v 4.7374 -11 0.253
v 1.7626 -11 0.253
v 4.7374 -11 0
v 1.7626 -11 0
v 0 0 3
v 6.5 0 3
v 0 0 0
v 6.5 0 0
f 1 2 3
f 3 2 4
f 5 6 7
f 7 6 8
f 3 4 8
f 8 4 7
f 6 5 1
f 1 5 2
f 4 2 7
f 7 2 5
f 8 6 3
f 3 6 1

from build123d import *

# Parameters (mm, degrees)
SKETCH_1_W          = 6.5
SKETCH_1_H          = 11
EXTRUDE_1_DEPTH     = 3
CUT_EXTRUDE_1_DEPTH = 10
CUT_EXTRUDE_2_DEPTH = 10


with BuildPart() as part:
    # 草图1 → 凸台-拉伸1 (new body)
    with BuildSketch(Plane.XY):
        with Locations((3.25, -5.5)):
            Rectangle(SKETCH_1_W, SKETCH_1_H)
    extrude(amount=EXTRUDE_1_DEPTH)

    # 草图2 → 切除-拉伸1 (cut)
    with BuildSketch(Plane(origin=(6.5, 0, 0), x_dir=(0, 0, -1), z_dir=(1, 0, 0))):
        Polygon((-3, 0), (-0.252978195, -11), (-3, -11), align=None)
    extrude(amount=-CUT_EXTRUDE_1_DEPTH, mode=Mode.SUBTRACT)

    # 草图3 → 切除-拉伸2 (cut)
    with BuildSketch(Plane(origin=(0, 0, 0), x_dir=(-1, 0, 0), z_dir=(0, 0, -1))):
        Polygon((-6.5, 0), (-4.73741155, -11), (-6.5, -11), align=None)
        Polygon((-1.76258845, -11), (0, -11), (0, 0), align=None)
    extrude(amount=-CUT_EXTRUDE_2_DEPTH, mode=Mode.SUBTRACT)


solid = part.part
